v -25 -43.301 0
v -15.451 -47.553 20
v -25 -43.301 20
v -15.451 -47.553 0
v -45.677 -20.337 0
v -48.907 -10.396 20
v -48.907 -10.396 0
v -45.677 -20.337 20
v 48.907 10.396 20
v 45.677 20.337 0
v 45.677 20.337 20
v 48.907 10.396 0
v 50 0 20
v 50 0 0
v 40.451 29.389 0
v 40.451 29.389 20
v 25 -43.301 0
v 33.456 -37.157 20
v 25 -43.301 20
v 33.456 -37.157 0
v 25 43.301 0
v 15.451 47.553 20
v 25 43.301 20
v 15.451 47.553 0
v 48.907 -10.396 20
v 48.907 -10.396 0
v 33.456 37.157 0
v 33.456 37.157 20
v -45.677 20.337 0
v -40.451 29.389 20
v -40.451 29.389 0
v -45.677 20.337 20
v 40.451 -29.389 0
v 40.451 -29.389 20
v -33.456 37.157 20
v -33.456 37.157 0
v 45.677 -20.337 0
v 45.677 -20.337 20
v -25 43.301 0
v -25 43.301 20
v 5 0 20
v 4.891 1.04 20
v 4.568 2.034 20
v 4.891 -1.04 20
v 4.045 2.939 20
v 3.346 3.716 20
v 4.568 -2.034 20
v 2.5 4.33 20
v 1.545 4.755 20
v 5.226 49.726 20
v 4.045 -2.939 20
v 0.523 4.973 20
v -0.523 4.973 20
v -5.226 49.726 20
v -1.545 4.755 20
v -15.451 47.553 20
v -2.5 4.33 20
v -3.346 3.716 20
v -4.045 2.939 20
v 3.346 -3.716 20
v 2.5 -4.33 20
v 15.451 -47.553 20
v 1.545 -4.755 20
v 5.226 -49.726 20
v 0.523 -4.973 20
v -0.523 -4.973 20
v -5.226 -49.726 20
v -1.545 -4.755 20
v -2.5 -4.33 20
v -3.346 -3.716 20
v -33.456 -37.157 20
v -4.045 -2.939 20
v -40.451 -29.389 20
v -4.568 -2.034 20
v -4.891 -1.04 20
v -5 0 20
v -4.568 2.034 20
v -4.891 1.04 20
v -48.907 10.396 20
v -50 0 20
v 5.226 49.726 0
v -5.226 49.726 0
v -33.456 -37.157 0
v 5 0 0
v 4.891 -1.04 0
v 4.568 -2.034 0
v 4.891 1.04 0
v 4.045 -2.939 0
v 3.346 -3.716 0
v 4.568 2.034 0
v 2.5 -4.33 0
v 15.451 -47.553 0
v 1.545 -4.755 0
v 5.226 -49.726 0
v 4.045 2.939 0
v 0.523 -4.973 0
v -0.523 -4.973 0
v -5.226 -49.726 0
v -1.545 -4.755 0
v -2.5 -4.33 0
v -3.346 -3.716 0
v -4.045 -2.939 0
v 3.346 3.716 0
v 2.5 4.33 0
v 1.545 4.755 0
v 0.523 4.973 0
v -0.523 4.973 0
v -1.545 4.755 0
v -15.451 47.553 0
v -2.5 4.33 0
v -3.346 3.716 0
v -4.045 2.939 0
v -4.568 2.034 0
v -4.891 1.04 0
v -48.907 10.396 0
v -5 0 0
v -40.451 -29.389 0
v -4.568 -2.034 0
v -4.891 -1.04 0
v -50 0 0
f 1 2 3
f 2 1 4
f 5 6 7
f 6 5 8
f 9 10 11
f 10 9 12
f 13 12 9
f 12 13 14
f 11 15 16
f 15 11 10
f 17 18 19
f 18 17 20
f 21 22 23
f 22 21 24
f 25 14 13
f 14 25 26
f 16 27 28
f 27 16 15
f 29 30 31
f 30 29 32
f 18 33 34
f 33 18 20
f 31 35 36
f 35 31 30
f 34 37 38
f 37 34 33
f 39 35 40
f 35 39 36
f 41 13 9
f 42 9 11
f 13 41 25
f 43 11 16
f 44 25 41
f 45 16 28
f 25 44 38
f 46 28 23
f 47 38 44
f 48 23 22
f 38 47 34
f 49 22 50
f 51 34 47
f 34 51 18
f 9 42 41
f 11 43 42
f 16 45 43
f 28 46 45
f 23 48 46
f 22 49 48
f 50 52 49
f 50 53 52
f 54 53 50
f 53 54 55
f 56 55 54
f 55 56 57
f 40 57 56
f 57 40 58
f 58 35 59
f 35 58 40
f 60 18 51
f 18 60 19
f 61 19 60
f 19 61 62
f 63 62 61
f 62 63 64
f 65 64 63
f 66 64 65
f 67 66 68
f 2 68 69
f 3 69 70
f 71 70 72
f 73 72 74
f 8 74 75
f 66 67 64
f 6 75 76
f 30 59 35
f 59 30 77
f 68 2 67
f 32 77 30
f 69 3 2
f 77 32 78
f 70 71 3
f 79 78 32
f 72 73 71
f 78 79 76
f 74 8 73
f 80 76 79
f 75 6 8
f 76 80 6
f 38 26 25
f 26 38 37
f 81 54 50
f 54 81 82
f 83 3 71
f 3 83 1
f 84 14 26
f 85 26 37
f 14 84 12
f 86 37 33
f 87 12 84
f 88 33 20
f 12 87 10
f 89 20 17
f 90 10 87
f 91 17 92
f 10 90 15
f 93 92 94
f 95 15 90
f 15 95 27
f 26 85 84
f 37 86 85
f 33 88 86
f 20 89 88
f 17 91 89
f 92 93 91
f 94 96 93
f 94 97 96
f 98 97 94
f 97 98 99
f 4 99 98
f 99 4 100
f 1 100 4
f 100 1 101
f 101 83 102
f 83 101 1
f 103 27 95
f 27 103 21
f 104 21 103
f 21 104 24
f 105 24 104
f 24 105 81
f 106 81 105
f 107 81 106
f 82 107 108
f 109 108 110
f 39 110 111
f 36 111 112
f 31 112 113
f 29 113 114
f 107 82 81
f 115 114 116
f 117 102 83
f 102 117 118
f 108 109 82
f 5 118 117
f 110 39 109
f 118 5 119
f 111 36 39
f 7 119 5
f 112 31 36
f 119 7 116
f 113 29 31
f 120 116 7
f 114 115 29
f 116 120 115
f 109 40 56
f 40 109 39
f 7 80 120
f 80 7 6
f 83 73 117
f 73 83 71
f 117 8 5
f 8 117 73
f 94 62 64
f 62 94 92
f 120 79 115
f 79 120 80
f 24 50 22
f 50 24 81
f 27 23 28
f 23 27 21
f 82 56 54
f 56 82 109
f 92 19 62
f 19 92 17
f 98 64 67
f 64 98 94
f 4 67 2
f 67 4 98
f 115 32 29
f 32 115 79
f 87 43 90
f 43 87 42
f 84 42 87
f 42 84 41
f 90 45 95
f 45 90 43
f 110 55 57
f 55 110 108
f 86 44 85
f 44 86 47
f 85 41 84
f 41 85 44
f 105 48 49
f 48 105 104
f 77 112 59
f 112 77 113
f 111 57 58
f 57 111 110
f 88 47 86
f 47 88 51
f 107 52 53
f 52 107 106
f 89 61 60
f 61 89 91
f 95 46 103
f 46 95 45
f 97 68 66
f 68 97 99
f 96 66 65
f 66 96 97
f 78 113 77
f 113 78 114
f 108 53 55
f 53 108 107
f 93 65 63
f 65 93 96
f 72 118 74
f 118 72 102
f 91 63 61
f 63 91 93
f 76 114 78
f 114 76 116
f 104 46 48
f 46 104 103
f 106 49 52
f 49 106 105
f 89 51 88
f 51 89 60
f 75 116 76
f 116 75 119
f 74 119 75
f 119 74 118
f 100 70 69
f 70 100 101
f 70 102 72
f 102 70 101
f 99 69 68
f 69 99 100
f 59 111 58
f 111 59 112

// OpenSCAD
// Simple cylindrical flywheel
// Parameters: radius, height, and shaft diameter
// Customize $fs for resolution

radius = 50;    // mm
height = 20;    // mm
shaft_diameter = 10;  // mm

module flywheel(r, h, shaft_d) {
    difference() {
        cylinder(r=r, h=h, $fs=0.5);
        translate([0,0,-1])
            cylinder(r=shaft_d/2, h=h+2, $fs=0.5);
    }
}

flywheel(radius, height, shaft_diameter);
